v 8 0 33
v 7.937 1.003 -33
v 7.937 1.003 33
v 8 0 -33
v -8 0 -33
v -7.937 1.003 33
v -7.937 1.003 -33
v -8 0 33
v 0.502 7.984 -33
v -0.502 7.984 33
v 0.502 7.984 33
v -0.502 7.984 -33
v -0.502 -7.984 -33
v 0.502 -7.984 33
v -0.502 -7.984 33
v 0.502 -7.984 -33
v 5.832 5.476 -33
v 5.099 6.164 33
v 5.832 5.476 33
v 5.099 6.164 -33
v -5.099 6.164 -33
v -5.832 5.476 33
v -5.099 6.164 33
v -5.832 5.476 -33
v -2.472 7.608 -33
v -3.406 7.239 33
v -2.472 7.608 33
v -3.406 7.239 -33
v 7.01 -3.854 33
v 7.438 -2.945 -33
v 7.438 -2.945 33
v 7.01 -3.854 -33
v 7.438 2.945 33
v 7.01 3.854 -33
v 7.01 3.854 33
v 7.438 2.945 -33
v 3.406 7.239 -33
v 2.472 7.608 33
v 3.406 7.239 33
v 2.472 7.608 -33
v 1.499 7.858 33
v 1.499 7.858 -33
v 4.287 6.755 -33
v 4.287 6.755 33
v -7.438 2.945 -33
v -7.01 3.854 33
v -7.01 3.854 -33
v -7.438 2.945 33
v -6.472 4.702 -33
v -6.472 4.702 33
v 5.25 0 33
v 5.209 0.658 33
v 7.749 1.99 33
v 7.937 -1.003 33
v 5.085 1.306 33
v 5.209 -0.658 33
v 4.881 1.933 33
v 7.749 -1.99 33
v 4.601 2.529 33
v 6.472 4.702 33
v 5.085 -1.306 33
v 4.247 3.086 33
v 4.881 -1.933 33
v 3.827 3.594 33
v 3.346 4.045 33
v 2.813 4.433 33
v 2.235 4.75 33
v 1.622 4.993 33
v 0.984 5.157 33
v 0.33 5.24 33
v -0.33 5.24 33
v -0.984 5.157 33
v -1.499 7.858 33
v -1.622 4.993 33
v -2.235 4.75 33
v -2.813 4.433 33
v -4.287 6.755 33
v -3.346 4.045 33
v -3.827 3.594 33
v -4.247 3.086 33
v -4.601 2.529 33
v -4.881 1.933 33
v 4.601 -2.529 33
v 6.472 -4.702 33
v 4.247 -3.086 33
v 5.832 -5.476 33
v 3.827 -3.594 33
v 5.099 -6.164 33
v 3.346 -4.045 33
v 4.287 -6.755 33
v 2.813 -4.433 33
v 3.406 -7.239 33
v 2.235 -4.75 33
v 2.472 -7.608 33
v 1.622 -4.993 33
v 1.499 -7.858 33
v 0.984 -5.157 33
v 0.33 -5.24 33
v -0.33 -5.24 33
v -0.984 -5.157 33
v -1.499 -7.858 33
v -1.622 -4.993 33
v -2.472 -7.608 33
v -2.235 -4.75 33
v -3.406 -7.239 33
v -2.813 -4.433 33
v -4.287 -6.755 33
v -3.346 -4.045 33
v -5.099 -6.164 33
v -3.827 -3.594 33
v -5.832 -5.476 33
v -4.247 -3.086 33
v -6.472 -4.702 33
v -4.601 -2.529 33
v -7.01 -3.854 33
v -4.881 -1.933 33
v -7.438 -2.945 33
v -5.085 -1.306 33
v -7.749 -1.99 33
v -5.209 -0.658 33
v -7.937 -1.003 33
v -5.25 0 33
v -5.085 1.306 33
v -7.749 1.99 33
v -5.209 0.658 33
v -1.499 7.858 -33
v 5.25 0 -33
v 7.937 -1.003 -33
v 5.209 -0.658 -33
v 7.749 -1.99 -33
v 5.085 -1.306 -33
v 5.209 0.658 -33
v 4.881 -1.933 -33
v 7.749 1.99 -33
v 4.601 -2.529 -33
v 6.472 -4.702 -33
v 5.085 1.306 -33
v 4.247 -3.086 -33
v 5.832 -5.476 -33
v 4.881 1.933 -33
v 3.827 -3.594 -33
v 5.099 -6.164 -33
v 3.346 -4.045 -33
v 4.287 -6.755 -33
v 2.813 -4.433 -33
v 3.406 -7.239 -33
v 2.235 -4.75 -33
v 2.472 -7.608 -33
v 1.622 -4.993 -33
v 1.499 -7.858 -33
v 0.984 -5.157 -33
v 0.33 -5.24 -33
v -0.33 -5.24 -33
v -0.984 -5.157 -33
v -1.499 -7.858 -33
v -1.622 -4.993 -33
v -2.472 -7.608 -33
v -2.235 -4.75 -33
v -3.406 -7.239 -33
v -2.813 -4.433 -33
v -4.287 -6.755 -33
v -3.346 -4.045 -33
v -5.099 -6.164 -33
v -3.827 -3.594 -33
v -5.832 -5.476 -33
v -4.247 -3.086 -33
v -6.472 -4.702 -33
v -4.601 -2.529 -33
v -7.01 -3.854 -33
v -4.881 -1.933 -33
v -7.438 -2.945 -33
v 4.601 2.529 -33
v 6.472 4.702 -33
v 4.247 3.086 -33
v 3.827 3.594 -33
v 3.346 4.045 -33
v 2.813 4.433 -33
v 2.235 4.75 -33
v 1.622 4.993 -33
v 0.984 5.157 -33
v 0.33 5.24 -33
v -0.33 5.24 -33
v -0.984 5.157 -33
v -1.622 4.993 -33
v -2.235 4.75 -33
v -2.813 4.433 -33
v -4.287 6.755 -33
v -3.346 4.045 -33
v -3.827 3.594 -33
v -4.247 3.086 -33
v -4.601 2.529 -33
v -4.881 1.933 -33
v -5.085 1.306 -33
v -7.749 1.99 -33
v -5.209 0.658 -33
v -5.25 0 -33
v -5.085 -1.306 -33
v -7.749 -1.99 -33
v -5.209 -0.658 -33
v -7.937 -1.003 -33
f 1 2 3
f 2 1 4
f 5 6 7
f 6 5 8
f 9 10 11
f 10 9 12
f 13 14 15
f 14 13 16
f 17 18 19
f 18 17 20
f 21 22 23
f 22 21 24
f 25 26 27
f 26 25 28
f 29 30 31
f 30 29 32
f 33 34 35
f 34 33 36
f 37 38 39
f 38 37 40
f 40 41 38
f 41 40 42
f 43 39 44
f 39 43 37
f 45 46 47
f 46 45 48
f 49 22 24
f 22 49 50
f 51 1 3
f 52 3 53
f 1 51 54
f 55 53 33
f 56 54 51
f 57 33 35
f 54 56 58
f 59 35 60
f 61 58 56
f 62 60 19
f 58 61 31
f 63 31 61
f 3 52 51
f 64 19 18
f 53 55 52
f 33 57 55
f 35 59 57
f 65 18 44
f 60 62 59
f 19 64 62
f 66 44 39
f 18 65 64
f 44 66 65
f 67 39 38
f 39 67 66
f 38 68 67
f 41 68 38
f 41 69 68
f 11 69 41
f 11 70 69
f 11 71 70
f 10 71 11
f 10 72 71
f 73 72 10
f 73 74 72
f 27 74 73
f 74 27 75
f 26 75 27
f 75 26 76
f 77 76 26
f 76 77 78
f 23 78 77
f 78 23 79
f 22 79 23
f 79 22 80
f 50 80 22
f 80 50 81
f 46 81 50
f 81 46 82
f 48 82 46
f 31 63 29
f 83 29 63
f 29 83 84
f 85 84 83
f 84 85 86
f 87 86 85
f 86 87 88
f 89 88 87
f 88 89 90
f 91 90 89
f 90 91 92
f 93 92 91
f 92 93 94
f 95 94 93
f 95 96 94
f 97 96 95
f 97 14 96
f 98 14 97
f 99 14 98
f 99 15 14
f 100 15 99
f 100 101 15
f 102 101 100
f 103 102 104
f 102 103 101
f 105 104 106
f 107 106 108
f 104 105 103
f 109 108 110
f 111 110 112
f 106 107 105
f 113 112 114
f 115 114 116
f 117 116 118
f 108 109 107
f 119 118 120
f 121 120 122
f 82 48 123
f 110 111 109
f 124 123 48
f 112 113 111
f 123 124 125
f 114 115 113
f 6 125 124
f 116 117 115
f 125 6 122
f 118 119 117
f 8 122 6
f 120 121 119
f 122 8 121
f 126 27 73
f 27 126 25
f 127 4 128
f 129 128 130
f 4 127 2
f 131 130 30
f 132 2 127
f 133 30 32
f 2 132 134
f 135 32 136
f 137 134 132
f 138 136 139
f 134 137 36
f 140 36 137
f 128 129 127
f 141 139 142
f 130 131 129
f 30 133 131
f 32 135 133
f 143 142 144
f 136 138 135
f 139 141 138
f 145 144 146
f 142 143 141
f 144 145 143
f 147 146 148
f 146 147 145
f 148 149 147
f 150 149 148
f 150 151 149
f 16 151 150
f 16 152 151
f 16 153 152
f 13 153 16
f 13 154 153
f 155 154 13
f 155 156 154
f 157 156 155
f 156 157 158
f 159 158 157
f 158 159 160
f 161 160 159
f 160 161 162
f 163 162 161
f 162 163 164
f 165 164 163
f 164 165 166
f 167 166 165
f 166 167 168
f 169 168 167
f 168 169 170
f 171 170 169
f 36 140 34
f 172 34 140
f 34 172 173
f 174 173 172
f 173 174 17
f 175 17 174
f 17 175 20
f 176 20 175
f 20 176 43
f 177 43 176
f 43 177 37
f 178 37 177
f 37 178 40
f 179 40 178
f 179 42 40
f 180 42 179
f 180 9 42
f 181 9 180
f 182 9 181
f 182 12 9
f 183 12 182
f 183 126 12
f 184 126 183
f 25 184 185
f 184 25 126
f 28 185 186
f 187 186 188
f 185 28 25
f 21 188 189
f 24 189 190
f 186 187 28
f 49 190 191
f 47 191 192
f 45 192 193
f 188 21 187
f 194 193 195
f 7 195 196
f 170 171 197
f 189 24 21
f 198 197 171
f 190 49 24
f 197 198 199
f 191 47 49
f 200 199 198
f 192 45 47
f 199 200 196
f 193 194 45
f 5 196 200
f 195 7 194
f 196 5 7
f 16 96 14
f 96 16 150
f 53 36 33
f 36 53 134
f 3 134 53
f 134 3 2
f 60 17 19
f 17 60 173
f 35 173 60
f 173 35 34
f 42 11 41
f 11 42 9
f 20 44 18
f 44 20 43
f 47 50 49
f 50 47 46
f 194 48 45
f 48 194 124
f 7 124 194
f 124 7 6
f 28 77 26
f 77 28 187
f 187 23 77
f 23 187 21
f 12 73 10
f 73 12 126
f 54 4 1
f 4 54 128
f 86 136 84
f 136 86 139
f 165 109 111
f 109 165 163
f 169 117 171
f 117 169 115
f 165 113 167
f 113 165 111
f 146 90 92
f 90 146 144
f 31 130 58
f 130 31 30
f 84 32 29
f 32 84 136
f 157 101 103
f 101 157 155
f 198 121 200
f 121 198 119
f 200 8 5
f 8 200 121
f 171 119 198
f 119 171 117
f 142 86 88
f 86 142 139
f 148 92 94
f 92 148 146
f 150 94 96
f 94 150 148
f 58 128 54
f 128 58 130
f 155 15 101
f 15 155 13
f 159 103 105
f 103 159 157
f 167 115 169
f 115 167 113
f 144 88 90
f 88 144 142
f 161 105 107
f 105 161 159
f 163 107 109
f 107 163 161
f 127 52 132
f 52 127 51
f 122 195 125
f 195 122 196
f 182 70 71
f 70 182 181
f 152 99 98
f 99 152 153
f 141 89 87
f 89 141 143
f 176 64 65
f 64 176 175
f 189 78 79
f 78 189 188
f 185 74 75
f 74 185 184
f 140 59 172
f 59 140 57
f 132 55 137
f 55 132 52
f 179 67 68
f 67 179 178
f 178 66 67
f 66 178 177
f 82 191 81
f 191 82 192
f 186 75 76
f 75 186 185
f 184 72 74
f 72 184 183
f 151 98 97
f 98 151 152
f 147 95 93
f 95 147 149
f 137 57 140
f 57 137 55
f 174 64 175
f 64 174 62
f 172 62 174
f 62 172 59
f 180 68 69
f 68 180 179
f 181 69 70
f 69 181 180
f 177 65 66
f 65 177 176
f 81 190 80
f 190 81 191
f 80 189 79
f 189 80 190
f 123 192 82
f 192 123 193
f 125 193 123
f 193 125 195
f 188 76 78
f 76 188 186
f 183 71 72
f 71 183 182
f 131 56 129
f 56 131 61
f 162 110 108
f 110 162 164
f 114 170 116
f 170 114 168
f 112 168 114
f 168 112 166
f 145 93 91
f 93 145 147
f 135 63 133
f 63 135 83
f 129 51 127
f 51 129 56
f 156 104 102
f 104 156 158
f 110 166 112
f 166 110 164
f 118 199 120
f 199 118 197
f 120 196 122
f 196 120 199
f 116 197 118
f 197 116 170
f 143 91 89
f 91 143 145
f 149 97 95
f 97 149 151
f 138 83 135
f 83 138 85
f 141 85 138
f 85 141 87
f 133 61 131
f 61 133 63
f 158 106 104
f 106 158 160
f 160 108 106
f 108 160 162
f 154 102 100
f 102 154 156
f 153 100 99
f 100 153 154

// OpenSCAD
$fn = 50;


difference() {
	union() {
		translate(v = [0, 0, -33.0000000000]) {
			cylinder(h = 66, r = 8.0000000000);
		}
	}
	union() {
		translate(v = [0, 0, -100.0000000000]) {
			cylinder(h = 200, r = 5.2500000000);
		}
	}
}
